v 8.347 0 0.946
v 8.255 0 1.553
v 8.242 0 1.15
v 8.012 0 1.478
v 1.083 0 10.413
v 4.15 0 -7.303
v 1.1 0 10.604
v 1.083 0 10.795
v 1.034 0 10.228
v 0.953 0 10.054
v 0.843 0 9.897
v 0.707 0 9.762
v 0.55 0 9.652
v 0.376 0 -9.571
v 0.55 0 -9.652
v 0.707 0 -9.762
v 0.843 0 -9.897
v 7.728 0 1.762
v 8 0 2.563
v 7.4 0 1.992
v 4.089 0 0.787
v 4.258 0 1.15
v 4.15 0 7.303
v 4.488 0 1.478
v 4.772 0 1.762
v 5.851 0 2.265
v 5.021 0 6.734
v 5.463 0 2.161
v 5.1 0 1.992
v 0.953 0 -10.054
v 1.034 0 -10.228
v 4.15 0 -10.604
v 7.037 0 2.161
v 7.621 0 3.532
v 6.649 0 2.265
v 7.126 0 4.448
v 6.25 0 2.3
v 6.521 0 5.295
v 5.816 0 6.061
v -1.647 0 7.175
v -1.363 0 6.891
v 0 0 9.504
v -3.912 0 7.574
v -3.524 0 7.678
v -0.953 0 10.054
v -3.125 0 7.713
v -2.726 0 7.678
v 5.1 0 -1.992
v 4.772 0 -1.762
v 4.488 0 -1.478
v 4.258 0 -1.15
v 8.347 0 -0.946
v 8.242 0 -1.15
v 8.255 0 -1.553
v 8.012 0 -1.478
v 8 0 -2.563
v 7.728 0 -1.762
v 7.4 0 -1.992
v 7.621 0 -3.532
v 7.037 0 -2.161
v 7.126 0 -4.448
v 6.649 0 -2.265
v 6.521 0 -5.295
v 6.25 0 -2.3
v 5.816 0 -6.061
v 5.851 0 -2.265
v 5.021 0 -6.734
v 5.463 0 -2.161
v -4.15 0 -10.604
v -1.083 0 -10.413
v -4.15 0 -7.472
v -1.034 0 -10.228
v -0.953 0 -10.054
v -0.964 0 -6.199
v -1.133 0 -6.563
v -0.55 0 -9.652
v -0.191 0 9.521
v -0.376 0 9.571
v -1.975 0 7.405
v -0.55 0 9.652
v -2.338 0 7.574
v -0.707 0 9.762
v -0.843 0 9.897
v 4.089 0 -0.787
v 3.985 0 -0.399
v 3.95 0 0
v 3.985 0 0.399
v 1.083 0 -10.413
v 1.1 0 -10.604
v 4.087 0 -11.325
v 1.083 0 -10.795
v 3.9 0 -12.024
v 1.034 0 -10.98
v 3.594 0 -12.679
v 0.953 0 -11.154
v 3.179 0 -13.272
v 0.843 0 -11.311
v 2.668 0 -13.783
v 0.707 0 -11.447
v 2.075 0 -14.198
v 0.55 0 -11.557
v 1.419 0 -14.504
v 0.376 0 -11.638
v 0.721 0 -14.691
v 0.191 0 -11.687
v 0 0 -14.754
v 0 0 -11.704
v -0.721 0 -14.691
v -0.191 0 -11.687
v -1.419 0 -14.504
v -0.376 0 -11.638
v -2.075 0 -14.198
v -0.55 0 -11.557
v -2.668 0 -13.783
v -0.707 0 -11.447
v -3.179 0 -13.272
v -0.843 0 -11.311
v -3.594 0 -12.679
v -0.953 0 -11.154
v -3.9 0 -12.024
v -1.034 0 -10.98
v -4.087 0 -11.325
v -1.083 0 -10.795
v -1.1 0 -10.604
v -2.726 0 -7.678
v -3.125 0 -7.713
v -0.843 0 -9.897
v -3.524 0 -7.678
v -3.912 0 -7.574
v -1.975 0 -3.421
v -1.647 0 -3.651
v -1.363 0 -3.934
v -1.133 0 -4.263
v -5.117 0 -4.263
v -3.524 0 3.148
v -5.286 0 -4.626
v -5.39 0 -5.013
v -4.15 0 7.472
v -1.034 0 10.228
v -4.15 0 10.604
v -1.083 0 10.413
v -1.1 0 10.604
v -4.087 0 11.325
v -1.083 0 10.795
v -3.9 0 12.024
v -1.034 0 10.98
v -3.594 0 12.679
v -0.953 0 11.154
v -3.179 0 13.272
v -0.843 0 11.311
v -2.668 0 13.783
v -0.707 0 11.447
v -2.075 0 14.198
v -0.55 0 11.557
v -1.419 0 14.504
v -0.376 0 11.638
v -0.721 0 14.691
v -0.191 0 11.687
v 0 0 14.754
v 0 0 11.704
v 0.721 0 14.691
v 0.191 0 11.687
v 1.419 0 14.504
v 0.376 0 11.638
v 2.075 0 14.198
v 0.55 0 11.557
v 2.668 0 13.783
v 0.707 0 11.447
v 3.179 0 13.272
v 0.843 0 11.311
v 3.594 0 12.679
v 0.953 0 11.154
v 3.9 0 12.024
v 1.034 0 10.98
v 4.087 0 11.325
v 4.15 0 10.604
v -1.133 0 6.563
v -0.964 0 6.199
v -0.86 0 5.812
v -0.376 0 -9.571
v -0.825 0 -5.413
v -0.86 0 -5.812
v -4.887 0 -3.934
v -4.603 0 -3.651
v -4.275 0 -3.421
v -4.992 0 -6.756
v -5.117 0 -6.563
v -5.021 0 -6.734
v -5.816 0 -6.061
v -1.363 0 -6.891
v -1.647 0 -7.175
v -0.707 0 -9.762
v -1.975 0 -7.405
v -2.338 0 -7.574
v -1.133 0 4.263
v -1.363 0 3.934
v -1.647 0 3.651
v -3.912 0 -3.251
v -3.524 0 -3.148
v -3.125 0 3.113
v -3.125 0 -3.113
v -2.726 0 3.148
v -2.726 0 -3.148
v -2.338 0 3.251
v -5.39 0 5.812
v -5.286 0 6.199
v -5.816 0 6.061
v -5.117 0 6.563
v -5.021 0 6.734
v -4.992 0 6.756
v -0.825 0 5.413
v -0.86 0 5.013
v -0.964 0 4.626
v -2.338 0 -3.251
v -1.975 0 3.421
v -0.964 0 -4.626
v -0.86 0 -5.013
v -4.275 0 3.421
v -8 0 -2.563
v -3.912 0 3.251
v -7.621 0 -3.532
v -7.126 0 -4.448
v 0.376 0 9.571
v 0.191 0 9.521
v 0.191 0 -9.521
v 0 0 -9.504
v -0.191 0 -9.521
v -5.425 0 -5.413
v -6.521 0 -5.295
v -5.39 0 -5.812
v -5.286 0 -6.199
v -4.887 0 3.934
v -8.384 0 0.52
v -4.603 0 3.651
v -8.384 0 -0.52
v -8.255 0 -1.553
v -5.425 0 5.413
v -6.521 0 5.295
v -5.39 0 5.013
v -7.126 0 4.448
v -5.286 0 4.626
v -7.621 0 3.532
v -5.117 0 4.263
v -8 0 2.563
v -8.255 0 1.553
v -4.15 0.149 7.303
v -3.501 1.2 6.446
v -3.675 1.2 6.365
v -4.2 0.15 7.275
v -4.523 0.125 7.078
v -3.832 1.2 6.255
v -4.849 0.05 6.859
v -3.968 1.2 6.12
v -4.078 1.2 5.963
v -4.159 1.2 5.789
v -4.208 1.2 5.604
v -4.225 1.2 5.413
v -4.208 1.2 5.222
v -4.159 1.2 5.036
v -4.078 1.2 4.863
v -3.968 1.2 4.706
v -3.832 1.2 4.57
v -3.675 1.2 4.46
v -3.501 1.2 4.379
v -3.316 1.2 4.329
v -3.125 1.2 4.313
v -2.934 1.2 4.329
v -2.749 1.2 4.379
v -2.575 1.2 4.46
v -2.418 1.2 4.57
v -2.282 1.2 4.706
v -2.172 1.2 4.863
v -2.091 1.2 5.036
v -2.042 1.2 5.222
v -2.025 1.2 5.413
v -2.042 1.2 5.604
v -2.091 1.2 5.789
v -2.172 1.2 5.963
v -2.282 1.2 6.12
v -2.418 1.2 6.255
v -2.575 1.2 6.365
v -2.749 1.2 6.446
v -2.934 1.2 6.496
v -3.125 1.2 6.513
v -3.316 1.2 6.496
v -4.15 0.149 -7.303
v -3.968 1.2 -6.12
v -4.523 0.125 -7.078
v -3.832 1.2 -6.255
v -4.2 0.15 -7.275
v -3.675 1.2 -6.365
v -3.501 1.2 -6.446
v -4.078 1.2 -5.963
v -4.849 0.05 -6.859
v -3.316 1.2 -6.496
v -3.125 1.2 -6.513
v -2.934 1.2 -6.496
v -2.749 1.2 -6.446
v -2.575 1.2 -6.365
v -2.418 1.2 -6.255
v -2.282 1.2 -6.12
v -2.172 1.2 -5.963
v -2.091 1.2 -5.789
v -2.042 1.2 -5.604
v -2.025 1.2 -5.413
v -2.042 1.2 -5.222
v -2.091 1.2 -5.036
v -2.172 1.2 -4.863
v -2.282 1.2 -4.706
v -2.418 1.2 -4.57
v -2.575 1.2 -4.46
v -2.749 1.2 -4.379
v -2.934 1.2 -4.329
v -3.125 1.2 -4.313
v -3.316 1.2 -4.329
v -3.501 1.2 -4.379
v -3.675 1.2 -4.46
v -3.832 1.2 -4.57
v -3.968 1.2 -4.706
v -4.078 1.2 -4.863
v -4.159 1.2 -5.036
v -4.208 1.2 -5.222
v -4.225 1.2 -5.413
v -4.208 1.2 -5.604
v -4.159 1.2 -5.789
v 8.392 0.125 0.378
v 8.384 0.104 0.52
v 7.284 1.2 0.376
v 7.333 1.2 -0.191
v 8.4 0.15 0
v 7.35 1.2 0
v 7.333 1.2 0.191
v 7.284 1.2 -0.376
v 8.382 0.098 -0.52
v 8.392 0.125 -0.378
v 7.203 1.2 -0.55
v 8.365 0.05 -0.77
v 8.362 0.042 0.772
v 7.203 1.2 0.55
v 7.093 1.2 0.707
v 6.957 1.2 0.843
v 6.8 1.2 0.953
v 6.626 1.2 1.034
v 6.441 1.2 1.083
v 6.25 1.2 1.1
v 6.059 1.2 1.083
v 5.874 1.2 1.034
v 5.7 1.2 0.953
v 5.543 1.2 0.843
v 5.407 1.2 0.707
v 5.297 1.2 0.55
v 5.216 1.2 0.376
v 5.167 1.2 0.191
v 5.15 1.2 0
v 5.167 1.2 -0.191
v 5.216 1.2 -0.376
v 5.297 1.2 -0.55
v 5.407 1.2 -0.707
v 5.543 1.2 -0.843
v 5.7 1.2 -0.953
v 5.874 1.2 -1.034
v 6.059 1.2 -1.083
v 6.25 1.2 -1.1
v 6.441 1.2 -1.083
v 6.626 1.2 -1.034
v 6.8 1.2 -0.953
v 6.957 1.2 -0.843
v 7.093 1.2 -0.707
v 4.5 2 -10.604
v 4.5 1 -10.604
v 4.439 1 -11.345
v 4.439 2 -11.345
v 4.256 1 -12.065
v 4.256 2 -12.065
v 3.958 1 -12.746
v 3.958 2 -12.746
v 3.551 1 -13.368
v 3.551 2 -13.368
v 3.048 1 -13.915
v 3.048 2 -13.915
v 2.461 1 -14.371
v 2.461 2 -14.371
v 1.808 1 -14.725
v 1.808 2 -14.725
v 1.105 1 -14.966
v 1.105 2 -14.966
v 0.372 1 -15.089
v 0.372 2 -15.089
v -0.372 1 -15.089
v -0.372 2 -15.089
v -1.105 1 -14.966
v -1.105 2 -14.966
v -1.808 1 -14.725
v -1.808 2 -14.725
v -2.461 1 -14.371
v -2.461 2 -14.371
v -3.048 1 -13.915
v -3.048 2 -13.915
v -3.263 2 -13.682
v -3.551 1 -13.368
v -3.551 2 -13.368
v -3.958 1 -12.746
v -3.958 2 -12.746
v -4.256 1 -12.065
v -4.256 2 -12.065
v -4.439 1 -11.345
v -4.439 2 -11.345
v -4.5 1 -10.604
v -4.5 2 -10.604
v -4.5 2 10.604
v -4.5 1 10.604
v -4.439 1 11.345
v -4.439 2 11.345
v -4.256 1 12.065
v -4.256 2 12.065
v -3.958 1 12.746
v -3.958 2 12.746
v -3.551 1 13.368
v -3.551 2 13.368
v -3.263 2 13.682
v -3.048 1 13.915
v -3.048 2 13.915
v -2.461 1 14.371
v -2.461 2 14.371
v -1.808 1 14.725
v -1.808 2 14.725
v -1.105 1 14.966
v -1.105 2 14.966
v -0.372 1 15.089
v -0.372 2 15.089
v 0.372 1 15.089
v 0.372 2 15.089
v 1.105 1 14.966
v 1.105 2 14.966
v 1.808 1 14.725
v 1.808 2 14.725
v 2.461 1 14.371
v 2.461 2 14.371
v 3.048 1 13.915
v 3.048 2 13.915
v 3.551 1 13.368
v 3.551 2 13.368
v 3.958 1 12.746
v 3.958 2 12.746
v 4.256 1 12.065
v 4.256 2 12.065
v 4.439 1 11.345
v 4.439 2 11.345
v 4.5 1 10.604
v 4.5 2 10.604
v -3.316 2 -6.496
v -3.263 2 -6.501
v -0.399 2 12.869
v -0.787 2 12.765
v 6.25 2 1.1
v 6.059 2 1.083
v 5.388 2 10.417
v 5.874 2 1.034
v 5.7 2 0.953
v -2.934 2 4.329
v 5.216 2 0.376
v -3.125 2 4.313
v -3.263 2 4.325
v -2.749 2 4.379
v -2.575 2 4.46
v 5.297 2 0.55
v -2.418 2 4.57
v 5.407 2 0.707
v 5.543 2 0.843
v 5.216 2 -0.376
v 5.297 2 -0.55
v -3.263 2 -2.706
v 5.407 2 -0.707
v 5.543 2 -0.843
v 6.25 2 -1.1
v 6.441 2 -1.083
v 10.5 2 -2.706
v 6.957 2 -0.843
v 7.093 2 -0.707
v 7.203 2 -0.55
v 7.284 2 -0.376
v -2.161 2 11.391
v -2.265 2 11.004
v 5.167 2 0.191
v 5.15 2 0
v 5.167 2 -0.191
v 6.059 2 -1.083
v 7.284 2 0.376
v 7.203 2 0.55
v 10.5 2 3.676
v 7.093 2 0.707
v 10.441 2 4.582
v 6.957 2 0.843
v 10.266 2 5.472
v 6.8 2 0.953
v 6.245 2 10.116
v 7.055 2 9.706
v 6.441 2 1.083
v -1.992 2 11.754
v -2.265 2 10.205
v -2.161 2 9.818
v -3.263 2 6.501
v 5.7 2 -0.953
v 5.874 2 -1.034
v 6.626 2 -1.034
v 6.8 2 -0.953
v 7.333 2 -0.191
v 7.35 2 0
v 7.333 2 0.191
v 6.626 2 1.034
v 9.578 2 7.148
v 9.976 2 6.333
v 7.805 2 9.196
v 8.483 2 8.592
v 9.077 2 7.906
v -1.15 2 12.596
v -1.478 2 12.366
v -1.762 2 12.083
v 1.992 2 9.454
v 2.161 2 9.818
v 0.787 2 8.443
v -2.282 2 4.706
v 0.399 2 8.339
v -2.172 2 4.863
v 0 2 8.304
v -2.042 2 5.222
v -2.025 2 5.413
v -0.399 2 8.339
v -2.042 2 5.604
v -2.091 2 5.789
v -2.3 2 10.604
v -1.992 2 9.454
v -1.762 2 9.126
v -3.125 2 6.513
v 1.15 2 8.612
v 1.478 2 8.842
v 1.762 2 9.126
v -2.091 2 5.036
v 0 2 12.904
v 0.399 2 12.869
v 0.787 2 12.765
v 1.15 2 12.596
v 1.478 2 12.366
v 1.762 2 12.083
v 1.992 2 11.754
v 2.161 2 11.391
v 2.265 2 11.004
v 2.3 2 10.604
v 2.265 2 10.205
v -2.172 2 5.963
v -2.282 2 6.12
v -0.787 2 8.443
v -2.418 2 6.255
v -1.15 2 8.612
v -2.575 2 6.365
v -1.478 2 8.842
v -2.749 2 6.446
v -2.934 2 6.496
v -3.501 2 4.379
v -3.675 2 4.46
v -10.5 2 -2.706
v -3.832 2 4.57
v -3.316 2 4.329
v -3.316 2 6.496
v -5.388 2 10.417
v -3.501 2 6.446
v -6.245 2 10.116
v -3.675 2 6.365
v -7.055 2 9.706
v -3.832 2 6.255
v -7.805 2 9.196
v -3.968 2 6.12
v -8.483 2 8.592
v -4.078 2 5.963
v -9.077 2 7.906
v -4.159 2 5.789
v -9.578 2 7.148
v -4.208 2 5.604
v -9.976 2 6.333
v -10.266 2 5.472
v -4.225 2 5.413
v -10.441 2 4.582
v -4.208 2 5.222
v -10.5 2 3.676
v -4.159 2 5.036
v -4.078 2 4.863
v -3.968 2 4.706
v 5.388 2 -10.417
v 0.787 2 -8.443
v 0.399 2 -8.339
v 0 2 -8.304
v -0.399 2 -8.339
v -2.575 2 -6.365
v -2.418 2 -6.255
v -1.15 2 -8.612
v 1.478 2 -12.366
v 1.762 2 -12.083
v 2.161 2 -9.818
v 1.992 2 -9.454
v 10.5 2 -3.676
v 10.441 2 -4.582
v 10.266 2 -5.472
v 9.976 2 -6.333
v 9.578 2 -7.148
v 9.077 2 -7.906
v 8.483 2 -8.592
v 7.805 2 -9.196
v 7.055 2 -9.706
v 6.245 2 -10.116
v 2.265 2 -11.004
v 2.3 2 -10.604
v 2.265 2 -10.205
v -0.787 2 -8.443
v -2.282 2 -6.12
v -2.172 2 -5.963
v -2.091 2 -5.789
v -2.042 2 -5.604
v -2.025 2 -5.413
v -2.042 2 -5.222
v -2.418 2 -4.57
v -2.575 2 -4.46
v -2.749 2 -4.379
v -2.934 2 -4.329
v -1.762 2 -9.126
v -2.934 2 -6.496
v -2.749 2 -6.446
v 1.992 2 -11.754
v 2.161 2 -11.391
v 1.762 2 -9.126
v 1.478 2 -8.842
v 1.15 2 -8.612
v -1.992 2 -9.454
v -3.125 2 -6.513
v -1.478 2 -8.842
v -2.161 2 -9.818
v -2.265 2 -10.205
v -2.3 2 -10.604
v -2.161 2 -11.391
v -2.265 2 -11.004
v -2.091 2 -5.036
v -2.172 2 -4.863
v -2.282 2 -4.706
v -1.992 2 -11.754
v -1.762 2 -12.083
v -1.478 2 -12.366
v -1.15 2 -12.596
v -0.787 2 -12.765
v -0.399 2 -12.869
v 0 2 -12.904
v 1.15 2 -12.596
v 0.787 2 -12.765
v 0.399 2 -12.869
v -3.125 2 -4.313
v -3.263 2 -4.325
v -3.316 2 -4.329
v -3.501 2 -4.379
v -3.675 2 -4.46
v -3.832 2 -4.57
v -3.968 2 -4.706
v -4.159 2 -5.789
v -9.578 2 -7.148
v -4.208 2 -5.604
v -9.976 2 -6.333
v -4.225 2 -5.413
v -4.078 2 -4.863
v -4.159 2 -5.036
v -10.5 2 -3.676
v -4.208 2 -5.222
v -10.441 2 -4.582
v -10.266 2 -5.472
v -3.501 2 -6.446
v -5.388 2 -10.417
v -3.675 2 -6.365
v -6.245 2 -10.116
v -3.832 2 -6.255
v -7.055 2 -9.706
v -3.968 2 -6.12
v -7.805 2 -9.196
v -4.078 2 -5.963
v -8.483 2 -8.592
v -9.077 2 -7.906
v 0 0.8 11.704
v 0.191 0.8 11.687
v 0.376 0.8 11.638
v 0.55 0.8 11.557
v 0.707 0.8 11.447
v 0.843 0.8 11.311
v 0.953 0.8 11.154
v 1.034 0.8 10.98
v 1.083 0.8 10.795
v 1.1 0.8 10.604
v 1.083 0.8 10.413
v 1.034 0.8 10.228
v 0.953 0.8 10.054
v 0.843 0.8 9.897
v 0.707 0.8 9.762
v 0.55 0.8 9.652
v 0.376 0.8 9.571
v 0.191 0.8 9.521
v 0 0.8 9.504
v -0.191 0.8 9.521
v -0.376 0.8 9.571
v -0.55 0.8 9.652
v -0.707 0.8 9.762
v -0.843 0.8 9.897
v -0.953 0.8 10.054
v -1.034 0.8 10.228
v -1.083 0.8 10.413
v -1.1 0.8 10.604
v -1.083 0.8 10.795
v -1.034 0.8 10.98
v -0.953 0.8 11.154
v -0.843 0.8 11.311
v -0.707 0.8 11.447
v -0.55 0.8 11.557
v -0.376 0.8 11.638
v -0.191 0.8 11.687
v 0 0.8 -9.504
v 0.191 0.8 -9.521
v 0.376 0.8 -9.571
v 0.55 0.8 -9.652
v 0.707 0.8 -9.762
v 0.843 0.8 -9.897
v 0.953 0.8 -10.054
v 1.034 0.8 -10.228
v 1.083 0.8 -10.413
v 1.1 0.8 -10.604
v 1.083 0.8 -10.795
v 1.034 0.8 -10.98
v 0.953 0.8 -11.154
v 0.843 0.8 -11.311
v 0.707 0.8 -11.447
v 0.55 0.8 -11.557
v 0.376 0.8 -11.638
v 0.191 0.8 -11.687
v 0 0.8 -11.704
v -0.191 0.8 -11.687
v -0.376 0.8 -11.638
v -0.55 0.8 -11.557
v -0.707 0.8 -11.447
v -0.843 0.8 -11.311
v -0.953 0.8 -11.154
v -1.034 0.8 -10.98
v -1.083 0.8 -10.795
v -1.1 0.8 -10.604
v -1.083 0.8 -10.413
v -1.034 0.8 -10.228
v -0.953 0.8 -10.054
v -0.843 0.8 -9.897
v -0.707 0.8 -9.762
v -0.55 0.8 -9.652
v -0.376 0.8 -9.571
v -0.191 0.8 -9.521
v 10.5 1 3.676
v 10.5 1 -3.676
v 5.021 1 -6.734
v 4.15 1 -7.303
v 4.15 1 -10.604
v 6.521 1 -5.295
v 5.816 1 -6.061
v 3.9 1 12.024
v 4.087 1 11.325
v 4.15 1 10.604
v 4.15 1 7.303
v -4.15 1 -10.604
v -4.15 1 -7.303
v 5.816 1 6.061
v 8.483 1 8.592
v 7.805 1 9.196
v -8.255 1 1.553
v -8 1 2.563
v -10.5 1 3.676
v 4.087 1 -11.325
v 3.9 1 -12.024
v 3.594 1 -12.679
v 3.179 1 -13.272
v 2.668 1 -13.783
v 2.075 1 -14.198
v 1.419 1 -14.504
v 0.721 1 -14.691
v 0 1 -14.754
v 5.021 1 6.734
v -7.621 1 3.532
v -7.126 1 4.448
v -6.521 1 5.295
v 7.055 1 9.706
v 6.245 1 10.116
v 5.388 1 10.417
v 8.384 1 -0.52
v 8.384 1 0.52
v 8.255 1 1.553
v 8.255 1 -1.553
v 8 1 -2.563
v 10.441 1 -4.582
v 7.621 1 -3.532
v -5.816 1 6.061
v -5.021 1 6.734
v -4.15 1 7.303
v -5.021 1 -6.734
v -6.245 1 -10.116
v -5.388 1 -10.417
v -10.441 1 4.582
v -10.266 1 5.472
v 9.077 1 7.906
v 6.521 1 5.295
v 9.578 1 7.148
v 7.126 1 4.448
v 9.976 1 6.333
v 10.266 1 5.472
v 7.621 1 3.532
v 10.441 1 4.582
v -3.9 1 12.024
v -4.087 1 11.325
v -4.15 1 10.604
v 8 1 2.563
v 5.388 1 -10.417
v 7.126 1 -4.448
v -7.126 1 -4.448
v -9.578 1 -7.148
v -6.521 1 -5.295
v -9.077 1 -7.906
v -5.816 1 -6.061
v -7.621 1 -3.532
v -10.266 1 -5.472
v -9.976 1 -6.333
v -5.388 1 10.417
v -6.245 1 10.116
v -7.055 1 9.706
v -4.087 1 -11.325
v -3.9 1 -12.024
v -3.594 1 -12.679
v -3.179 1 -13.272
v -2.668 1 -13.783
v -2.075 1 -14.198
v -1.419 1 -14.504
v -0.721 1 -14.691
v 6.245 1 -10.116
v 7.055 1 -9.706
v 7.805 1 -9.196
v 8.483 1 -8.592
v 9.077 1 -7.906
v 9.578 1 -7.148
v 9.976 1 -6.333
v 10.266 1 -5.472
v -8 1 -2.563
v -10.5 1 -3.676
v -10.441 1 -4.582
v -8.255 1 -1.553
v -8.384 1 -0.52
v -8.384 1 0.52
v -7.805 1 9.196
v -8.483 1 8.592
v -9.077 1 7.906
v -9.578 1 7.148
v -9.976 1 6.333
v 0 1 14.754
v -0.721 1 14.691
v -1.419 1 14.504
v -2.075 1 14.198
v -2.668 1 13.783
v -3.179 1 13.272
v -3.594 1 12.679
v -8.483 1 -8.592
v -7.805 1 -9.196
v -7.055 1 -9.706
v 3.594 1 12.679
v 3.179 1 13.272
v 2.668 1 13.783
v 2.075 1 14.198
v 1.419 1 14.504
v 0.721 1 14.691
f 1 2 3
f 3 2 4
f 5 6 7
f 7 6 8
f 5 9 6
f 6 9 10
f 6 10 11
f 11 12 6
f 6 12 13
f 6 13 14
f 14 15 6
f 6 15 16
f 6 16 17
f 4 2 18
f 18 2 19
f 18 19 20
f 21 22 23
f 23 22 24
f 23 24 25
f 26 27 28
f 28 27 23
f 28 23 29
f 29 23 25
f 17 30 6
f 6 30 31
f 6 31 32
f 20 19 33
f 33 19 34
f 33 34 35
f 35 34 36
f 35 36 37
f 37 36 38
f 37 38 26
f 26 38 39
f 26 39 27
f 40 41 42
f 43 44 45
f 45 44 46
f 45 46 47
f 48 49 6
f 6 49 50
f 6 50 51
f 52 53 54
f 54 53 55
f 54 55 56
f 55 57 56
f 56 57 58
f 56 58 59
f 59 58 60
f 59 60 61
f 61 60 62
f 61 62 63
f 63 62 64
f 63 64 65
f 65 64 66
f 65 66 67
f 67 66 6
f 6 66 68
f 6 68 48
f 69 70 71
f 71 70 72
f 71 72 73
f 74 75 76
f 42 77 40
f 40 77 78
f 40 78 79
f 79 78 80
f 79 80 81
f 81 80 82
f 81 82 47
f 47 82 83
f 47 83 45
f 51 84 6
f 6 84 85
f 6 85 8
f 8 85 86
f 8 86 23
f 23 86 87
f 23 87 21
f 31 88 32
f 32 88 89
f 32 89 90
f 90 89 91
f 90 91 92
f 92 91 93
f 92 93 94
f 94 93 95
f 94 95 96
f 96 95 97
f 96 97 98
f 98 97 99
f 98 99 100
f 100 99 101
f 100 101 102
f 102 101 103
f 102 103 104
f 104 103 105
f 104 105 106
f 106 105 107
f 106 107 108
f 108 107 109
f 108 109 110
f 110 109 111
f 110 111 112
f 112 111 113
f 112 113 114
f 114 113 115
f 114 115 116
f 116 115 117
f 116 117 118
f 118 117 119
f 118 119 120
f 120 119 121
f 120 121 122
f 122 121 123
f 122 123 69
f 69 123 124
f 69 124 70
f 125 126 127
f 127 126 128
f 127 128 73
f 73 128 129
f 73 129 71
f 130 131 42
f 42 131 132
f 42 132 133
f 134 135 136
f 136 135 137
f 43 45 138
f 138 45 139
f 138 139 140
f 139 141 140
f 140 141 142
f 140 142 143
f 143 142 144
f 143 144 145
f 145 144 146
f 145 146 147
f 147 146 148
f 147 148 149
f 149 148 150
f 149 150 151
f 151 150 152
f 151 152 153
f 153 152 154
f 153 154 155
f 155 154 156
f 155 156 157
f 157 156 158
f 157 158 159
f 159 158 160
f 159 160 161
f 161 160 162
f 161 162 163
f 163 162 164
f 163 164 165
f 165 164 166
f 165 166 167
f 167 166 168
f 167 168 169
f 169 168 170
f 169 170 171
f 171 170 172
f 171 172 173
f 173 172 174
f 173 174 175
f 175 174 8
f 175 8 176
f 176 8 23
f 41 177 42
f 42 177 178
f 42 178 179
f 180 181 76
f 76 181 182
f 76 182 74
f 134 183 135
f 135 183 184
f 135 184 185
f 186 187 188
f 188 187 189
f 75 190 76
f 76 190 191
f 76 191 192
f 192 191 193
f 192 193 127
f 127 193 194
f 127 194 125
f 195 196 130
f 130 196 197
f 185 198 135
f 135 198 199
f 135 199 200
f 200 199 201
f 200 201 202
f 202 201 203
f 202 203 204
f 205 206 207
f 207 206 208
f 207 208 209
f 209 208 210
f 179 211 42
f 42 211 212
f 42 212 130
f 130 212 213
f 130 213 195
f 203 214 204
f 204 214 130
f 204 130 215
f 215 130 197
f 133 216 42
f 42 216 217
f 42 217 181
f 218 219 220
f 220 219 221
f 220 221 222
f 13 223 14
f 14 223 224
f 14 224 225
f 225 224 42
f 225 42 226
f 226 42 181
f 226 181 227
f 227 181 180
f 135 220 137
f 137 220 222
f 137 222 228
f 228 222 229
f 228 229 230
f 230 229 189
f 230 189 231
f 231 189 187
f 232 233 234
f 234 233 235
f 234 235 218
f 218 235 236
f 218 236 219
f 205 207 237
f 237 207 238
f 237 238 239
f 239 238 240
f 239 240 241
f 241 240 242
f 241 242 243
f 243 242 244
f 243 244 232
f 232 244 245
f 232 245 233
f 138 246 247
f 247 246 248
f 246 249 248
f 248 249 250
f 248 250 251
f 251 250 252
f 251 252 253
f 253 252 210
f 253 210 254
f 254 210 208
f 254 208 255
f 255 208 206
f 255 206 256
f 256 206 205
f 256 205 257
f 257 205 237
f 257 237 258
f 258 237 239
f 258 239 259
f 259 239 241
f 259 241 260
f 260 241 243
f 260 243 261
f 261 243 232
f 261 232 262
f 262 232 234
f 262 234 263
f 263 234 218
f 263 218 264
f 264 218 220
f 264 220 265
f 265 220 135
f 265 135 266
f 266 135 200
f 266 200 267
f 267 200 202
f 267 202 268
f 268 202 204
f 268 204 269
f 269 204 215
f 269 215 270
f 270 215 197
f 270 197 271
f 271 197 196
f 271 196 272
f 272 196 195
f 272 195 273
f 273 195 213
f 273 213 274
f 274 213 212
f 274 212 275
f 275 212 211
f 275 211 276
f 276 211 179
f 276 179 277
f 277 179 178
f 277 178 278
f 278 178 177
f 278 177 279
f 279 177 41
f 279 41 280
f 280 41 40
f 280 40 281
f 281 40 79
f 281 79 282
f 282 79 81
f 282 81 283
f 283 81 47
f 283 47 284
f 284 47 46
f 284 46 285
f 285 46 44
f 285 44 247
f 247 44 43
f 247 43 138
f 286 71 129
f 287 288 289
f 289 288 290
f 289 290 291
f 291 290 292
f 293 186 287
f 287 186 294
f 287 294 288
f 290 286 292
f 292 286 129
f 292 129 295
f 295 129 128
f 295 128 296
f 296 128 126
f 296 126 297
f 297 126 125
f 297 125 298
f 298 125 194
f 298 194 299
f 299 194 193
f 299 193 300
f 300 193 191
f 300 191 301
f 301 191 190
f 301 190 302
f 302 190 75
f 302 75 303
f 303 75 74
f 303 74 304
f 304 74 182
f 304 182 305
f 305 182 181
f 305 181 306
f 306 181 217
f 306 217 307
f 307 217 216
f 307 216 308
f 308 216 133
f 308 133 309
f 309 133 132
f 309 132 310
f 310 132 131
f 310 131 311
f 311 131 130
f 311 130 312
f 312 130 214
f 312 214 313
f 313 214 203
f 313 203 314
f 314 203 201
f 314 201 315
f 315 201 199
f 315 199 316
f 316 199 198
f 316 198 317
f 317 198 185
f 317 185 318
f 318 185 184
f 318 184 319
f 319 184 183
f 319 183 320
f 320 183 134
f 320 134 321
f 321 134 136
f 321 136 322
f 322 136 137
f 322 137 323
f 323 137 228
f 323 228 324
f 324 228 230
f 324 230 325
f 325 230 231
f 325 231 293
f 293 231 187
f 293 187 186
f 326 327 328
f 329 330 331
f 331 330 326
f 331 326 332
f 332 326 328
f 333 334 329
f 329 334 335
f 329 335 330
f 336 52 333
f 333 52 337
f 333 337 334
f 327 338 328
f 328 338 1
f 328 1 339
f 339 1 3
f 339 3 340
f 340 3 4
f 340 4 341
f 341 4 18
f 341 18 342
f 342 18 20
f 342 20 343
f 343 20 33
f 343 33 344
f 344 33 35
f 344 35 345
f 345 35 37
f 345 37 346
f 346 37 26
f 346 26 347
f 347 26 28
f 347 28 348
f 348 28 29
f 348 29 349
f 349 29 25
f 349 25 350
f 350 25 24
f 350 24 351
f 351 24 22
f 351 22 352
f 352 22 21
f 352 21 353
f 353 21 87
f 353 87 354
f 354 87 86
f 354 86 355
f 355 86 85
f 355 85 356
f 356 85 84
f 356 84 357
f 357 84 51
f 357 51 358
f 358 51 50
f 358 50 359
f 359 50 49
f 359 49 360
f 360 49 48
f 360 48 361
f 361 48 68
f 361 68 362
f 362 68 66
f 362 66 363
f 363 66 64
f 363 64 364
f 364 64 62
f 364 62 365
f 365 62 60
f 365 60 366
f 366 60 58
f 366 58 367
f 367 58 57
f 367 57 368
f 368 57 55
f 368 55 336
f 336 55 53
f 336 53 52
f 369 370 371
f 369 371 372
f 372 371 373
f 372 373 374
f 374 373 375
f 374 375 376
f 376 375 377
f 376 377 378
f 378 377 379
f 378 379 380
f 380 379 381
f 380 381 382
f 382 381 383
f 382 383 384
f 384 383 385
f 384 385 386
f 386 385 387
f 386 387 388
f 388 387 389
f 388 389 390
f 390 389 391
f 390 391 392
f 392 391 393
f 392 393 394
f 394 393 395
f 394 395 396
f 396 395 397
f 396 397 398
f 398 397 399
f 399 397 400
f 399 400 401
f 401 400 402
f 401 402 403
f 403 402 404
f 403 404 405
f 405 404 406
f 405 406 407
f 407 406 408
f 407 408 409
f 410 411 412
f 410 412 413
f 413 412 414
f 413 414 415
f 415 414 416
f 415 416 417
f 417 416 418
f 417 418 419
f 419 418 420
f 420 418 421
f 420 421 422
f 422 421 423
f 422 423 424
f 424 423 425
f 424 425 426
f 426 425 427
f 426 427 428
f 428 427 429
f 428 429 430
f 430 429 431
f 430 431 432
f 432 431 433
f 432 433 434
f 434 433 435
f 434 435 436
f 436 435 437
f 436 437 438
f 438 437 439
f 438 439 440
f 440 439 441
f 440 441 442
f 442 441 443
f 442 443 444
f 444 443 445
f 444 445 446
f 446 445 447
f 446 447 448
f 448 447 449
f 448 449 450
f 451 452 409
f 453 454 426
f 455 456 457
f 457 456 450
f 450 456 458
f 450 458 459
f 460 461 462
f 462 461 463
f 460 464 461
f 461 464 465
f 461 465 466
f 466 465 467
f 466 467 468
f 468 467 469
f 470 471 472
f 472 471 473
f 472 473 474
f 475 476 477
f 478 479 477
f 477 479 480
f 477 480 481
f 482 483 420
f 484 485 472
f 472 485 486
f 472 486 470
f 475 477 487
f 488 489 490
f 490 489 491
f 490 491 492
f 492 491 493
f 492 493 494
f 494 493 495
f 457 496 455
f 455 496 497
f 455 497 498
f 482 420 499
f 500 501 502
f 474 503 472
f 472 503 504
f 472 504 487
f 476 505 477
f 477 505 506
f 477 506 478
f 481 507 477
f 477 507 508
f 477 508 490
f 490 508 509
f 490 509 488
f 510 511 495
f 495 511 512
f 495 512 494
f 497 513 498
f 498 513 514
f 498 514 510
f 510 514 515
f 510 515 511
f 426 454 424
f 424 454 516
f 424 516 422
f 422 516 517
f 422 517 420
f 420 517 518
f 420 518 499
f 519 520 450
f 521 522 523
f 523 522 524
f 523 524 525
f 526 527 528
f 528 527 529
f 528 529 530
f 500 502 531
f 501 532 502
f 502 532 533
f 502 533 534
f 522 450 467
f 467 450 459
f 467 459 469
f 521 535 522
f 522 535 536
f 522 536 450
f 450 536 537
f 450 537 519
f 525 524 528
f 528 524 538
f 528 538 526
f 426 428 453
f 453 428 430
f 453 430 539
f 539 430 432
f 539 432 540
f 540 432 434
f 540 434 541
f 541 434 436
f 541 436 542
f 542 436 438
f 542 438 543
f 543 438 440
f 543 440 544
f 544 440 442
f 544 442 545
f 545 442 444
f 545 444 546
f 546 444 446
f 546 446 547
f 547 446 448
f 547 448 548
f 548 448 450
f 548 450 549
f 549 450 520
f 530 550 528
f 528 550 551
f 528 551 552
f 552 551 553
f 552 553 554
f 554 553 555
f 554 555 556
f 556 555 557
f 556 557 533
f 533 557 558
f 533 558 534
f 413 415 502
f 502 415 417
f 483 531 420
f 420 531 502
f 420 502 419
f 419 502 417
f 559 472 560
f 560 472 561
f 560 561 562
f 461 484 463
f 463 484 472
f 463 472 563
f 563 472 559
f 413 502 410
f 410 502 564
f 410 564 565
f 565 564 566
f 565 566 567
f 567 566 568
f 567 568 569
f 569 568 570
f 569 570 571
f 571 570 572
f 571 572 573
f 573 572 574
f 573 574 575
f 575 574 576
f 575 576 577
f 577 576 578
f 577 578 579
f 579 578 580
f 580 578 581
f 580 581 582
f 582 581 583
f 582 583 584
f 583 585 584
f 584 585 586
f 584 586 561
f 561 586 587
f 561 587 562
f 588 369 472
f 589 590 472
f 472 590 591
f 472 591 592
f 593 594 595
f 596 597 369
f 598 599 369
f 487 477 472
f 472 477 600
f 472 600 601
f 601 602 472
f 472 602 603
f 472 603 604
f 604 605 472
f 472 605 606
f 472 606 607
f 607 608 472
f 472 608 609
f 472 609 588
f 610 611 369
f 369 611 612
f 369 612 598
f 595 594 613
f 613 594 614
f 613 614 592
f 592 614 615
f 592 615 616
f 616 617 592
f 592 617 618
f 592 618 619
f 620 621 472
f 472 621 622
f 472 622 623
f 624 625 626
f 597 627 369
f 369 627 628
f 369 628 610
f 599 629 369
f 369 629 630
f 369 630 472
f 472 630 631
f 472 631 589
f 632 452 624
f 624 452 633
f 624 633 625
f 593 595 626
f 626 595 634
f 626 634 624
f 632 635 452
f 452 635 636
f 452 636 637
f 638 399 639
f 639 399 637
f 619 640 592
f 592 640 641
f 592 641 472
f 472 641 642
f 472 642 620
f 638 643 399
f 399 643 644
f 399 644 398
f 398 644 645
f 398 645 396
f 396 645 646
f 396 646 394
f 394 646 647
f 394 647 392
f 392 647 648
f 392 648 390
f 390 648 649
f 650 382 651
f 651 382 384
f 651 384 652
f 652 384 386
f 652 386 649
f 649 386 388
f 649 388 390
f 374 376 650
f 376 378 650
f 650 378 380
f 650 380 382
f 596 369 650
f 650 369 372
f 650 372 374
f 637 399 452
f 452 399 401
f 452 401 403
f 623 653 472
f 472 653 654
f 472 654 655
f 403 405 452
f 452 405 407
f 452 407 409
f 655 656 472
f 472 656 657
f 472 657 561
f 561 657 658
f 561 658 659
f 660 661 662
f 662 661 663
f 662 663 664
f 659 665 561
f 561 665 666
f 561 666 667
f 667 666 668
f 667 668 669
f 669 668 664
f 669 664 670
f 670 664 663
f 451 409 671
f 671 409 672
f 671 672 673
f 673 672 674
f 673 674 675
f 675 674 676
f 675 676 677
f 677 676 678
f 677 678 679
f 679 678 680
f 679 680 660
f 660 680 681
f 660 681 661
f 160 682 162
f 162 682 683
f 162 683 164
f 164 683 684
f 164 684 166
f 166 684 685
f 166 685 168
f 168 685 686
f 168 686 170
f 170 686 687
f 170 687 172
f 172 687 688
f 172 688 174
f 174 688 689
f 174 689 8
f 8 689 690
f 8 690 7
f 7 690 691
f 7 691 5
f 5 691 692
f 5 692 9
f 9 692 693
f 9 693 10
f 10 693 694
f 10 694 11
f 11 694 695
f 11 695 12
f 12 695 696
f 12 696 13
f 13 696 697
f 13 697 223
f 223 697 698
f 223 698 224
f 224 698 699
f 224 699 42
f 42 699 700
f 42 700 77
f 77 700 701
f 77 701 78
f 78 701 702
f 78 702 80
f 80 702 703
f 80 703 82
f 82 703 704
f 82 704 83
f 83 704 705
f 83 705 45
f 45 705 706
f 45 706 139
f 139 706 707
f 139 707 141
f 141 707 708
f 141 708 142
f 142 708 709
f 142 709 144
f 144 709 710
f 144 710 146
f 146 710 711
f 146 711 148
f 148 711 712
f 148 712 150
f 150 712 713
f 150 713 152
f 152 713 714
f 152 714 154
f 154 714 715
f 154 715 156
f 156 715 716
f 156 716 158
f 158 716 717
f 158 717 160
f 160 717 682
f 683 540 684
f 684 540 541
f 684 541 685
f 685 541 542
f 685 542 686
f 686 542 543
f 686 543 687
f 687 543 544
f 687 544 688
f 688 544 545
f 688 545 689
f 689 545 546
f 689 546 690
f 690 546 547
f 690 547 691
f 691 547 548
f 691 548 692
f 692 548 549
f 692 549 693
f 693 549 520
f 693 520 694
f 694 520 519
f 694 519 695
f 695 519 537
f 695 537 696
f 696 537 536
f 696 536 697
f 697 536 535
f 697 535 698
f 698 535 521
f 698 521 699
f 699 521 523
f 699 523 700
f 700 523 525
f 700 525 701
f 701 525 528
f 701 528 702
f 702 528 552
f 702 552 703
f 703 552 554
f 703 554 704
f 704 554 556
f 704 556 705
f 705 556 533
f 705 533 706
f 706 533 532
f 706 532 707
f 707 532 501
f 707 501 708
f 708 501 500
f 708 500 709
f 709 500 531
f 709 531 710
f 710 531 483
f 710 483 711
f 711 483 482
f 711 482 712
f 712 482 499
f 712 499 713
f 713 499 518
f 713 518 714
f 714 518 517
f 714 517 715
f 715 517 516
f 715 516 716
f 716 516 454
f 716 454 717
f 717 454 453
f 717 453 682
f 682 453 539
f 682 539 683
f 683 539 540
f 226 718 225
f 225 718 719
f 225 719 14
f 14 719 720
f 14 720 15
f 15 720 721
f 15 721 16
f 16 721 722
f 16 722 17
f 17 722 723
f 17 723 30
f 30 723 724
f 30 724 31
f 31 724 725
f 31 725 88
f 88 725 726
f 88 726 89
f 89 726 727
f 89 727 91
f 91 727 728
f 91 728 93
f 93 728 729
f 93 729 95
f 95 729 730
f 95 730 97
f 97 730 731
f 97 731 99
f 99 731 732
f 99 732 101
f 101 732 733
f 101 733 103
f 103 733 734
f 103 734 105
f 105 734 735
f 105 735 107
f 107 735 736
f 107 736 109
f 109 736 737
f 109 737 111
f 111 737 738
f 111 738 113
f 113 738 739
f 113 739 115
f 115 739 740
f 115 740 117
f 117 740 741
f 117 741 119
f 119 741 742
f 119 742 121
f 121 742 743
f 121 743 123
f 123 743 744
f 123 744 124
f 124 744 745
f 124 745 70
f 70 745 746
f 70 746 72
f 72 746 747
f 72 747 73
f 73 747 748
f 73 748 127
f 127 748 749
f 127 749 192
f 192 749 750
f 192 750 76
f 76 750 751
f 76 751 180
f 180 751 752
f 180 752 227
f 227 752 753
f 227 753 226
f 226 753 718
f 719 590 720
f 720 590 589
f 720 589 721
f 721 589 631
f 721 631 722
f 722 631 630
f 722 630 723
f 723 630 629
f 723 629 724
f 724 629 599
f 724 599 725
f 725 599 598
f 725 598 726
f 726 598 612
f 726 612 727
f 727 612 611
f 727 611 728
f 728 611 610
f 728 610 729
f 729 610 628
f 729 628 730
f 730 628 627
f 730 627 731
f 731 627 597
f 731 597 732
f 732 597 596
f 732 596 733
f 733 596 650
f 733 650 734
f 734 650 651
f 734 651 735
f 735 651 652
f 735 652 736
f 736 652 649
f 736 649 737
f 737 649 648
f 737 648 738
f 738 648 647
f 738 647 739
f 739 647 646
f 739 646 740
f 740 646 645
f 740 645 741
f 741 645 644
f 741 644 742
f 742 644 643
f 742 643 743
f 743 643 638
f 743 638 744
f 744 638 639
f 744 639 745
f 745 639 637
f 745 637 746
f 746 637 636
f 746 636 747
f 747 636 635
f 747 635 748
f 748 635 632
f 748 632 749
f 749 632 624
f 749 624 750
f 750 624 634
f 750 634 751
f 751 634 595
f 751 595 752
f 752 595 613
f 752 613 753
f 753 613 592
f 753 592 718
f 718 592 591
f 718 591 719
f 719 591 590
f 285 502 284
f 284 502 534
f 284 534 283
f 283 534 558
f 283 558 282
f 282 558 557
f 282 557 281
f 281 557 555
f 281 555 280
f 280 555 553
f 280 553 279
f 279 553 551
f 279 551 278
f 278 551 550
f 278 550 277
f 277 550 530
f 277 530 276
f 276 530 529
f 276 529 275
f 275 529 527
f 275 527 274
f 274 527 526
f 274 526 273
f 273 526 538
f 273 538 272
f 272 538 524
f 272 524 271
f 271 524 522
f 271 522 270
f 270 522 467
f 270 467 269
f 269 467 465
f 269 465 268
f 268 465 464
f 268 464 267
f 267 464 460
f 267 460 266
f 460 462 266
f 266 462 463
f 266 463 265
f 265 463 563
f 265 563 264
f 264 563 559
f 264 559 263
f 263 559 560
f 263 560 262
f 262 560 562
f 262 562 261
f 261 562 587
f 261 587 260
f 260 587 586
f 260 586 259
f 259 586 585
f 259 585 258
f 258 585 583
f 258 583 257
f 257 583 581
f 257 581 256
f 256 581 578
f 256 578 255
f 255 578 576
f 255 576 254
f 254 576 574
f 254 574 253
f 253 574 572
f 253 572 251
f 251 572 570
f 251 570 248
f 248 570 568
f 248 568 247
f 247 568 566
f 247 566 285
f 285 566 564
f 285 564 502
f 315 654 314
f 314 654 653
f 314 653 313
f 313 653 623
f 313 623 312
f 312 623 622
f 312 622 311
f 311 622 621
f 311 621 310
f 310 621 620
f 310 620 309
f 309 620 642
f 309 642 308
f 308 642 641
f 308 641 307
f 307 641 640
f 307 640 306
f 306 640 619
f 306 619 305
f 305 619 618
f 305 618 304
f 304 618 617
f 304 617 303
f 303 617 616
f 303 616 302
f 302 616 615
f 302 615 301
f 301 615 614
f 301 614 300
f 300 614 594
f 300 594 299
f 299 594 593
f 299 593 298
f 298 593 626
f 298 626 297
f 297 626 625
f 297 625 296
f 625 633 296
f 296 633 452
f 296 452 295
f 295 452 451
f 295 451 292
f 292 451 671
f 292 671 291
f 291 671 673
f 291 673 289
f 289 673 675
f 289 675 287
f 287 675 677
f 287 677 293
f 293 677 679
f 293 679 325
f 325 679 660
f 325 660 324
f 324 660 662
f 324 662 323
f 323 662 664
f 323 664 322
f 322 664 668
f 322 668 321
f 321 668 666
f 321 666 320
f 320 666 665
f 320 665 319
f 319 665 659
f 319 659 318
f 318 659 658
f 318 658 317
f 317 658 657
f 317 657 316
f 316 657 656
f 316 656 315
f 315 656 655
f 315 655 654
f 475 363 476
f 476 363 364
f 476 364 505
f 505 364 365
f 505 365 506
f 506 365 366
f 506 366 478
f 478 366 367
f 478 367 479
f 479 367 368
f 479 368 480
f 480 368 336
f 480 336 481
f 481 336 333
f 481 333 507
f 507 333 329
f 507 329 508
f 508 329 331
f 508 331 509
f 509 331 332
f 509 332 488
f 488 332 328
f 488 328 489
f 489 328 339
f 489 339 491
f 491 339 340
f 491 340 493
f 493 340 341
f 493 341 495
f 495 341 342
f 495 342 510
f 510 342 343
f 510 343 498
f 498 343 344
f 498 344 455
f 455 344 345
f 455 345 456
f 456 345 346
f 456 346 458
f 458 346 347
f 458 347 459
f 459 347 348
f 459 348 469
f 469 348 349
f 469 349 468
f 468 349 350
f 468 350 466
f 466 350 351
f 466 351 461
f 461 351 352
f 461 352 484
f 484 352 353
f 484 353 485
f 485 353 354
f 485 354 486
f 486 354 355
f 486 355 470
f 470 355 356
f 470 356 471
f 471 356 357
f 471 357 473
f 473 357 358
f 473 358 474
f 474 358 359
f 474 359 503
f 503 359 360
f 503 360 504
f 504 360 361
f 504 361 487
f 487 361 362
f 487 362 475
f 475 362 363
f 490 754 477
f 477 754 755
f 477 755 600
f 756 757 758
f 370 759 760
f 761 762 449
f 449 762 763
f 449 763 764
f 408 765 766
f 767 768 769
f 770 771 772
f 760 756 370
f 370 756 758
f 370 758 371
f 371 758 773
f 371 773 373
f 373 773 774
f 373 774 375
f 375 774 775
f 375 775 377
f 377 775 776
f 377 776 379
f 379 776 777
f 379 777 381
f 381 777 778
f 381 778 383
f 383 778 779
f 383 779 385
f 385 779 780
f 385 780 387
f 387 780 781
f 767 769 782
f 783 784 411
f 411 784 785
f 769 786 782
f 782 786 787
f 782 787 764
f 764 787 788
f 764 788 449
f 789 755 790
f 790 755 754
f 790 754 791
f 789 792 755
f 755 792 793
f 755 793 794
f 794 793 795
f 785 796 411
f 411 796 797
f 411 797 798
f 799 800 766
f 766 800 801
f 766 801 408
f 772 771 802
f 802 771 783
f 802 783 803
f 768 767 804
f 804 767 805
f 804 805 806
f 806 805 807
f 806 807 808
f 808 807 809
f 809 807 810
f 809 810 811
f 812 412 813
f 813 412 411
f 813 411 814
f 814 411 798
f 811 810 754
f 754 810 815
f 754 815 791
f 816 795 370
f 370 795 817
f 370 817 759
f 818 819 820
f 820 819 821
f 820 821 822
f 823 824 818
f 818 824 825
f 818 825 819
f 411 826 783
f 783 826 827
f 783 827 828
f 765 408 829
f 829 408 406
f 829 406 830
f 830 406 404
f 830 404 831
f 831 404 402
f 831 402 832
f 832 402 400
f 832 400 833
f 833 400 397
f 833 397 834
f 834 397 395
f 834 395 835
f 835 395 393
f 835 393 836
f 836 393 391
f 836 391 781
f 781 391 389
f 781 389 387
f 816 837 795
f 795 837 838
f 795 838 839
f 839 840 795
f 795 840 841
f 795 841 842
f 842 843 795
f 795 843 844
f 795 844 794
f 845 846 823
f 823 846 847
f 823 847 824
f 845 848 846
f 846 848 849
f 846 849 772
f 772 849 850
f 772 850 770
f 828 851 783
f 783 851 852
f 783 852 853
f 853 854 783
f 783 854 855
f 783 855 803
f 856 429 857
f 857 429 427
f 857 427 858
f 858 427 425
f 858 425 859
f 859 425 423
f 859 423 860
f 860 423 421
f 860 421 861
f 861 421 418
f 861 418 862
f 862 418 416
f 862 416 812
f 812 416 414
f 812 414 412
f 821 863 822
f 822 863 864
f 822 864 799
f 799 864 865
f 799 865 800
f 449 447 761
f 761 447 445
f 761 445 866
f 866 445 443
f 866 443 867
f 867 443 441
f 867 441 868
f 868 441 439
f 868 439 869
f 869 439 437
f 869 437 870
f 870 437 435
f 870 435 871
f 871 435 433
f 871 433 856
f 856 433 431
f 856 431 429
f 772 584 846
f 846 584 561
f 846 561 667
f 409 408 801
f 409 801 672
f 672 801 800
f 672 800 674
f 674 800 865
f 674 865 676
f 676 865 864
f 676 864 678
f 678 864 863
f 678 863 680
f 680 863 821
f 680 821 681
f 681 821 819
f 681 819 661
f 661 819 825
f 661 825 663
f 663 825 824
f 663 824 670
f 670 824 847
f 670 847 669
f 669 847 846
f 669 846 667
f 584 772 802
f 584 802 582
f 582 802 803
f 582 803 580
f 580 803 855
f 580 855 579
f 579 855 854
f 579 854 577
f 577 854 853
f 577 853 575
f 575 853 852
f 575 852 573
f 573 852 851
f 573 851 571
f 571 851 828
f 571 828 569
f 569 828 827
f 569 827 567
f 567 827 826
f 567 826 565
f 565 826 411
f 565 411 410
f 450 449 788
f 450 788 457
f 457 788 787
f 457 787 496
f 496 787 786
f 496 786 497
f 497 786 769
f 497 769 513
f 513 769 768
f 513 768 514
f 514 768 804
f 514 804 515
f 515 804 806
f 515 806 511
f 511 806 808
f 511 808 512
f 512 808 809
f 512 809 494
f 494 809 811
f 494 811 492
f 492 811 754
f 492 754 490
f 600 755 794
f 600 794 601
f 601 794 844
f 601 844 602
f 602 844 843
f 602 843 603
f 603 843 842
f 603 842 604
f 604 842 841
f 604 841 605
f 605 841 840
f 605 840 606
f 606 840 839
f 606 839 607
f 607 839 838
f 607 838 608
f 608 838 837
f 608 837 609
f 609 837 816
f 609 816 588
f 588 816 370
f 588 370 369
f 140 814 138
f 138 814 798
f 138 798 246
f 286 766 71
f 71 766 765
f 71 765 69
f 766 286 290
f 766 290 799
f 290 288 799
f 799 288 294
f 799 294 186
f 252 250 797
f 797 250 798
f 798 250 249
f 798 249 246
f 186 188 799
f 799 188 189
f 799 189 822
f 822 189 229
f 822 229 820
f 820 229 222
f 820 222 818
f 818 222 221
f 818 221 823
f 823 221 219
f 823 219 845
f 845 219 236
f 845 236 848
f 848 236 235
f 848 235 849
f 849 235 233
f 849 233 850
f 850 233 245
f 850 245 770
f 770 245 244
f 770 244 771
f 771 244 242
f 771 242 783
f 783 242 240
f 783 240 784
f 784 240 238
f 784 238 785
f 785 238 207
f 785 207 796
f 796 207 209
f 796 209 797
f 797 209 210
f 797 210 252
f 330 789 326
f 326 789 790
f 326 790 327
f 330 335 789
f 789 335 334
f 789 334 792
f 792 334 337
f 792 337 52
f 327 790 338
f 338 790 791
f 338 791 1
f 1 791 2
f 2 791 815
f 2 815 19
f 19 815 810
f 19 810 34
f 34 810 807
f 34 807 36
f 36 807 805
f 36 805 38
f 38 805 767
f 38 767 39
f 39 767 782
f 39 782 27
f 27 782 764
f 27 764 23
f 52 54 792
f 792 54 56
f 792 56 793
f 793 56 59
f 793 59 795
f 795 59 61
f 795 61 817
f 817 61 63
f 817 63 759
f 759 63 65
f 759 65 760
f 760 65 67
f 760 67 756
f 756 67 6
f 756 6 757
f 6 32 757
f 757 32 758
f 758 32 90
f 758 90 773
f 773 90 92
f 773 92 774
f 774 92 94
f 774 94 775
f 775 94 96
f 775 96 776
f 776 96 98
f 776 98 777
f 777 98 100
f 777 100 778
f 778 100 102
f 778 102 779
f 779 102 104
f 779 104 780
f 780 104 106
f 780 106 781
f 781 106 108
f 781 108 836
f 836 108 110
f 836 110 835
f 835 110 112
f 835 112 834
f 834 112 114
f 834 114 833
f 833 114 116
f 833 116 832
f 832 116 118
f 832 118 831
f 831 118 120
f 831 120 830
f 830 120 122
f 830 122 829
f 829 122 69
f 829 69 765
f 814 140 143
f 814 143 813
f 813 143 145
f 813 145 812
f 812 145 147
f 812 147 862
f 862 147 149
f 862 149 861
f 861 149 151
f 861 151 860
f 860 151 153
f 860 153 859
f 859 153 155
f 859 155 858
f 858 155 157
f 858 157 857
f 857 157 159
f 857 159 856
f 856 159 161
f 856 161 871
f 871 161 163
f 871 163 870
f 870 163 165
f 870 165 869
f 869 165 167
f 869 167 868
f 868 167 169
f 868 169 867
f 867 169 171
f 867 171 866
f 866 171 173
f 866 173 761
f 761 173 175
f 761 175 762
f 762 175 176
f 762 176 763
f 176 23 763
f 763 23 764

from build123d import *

# Parameters (mm, degrees)
BOSS_EXTRUDE1_DEPTH                          = 2
CSK_FOR_M2_COUNTERSUNK_FLAT_HEAD_SCR_4_COUNT = 2
CSK_FOR_M2_COUNTERSUNK_FLAT_HEAD_SCR_4_PITCH = 10.825317547
CSK_FOR_M2_COUNTERSUNK_FLAT_HEAD_SCR_5_COUNT = 2
CSK_FOR_M2_COUNTERSUNK_FLAT_HEAD_SCR_5_PITCH = 10.825317547
BOSS_EXTRUDE2_START                          = -1
BOSS_EXTRUDE2_DEPTH                          = 1
FILLET1_R                                    = 7
CUT_EXTRUDE1_DEPTH                           = 1


# Read off the part's stored shape, not the designer's step: CSK for M2 Countersunk Flat Head Screw1
with BuildPart() as part:
    # Sketch1 → Boss-Extrude1 (new body)
    with BuildSketch(Plane(origin=(0, 0, 0), x_dir=(1, 0, 0), z_dir=(0, 1, 0))):
        with BuildLine():
            Line((4.5, 10.60416551), (4.5, 7.50416551))
            ThreePointArc((4.5, 7.50416551), (8.75, 0), (4.5, -7.50416551))
            Line((4.5, -7.50416551), (4.5, -10.60416551))
            ThreePointArc((4.5, -10.60416551), (0, -15.10416551), (-4.5, -10.60416551))
            Line((-4.5, -10.60416551), (-4.5, -7.50416551))
            ThreePointArc((-4.5, -7.50416551), (-8.75, 0), (-4.5, 7.50416551))
            Line((-4.5, 7.50416551), (-4.5, 10.60416551))
            ThreePointArc((-4.5, 10.60416551), (0, 15.10416551), (4.5, 10.60416551))
        make_face()
    extrude(amount=BOSS_EXTRUDE1_DEPTH)

    # CSK for M2 Countersunk Flat Head Scr 2 → CSK for M2 Countersunk Flat Head Screw1 (revolve, cut)
    with BuildSketch(Plane.XY.offset(10.60416551)):
        Polygon((0, 0), (1.1, 0), (1.1, 0.8), (2.3, 2), (0, 2), align=None)
    revolve(axis=Axis((0, 0, 10.60416551), (0, 1, 0)), mode=Mode.SUBTRACT)

    # CSK for M2 Countersunk Flat Head Scr 3 o → CSK for M2 Countersunk Flat Head Scr 3 (revolve, cut)
    with BuildSketch(Plane.XY.offset(-10.60416551)):
        Polygon((0, 0), (1.1, 0), (1.1, 0.8), (2.3, 2), (0, 2), align=None)
    revolve(axis=Axis((0, 0, -10.60416551), (0, 1, 0)), mode=Mode.SUBTRACT)

    # Sketch6 → CSK for M2 Countersunk Flat Head Screw2 (revolve, cut)
    with BuildSketch(Plane(origin=(6.25, 0, 0), x_dir=(0, 0, -1), z_dir=(1, 0, 0))):
        Polygon((0, 0), (0, 2), (1.1, 2), (1.1, 1.2), (2.3, 0), align=None)
    csk_for_m2_countersunk_flat_head_screw2 = revolve(axis=Axis((6.25, -6.35, 0), (0, 1, 0)), mode=Mode.SUBTRACT)

    # CSK for M2 Countersunk Flat Head Scr 4: CSK for M2 Countersunk Flat Head Screw2 ×2
    with Locations(*[Vector(-0.8660254037844379, 0, -0.5000000000000012) * (i * CSK_FOR_M2_COUNTERSUNK_FLAT_HEAD_SCR_4_PITCH) for i in range(1, CSK_FOR_M2_COUNTERSUNK_FLAT_HEAD_SCR_4_COUNT)]):
        add(csk_for_m2_countersunk_flat_head_screw2, mode=Mode.SUBTRACT)

    # CSK for M2 Countersunk Flat Head Scr 5: CSK for M2 Countersunk Flat Head Screw2 ×2
    with Locations(*[Vector(-0.8660254037844383, 0, 0.5000000000000008) * (i * CSK_FOR_M2_COUNTERSUNK_FLAT_HEAD_SCR_5_PITCH) for i in range(1, CSK_FOR_M2_COUNTERSUNK_FLAT_HEAD_SCR_5_COUNT)]):
        add(csk_for_m2_countersunk_flat_head_screw2, mode=Mode.SUBTRACT)

    # Sketch7 → Boss-Extrude2 (add)
    with BuildSketch(Plane(origin=(0, 2, 0), x_dir=(1, 0, 0), z_dir=(0, 1, 0)).offset(BOSS_EXTRUDE2_START)):
        with BuildLine():
            Line((4.5, 10.60416551), (10.5, 10.60416551))
            Line((10.5, 10.60416551), (10.5, -10.60416551))
            Line((10.5, -10.60416551), (4.5, -10.60416551))
            Line((4.5, -10.60416551), (4.5, -7.50416551))
            ThreePointArc((4.5, -7.50416551), (8.75, 0), (4.5, 7.50416551))
            Line((4.5, 7.50416551), (4.5, 10.60416551))
        make_face()
        with BuildLine():
            Line((-4.5, -7.50416551), (-4.5, -10.60416551))
            Line((-4.5, -10.60416551), (-10.5, -10.60416551))
            Line((-10.5, -10.60416551), (-10.5, 10.60416551))
            Line((-10.5, 10.60416551), (-4.5, 10.60416551))
            Line((-4.5, 10.60416551), (-4.5, 7.50416551))
            ThreePointArc((-4.5, 7.50416551), (-8.75, 0), (-4.5, -7.50416551))
        make_face()
    extrude(amount=BOSS_EXTRUDE2_DEPTH)

    # Fillet1
    # the kernel refuses this fillet: 7 mm, written as the material it takes off along each edge
    with BuildSketch(Plane(origin=(-10.5, -16.320508076, -10.60416551), x_dir=(1, 0, 0), z_dir=(0, 1, 0))) as fillet1_piece_1:
        with BuildLine():
            CenterArc((7, -6.92820323), FILLET1_R, 98.213210702, 81.786789298)
            Line((0, -6.92820323), (-0.14, -6.92820323))
            Line((-0.14, -6.92820323), (-0.14, 0))
            Line((-0.14, 0), (0, 0.14))
            ThreePointArc((0, 0.14), (3, 0.14), (5.98, 0.138564065))
            Line((5.98, 0.138564065), (6, 0))
        make_face()
    extrude(amount=35.641016151, mode=Mode.SUBTRACT)
    with BuildSketch(Plane(origin=(-10.5, -16.320508076, 10.60416551), x_dir=(1, 0, 0), z_dir=(0, 1, 0)), Plane(origin=(10.5, -16.320508076, -10.60416551), x_dir=(-1, 0, 0), z_dir=(0, 1, 0))) as fillet1_piece_2:
        with BuildLine():
            CenterArc((7, 6.92820323), FILLET1_R, 180, 81.786789298)
            Line((0, 6.92820323), (-0.14, 6.92820323))
            Line((-0.14, 6.92820323), (-0.14, 0))
            Line((-0.14, 0), (0, -0.14))
            ThreePointArc((0, -0.14), (3, -0.14), (5.98, -0.138564065))
            Line((5.98, -0.138564065), (6, 0))
        make_face()
    extrude(amount=35.641016151, mode=Mode.SUBTRACT)
    with BuildSketch(Plane(origin=(10.5, -16.320508076, 10.60416551), x_dir=(0, 0, -1), z_dir=(0, 1, 0))) as fillet1_piece_3:
        with BuildLine():
            CenterArc((6.92820323, 7), FILLET1_R, 188.213210702, 81.786789298)
            Line((0, 6), (-0.138564065, 5.98))
            ThreePointArc((-0.138564065, 5.98), (-0.14, 3), (-0.14, 0))
            Line((-0.14, 0), (0, -0.14))
            Line((0, -0.14), (6.92820323, -0.14))
            Line((6.92820323, -0.14), (6.92820323, 0))
        make_face()
    extrude(amount=35.641016151, mode=Mode.SUBTRACT)

    # Sketch8 → Cut-Extrude1 (cut)
    with BuildSketch(Plane.XZ):
        with BuildLine():
            Line((-4.5, -10.60416551), (-4.5, -7.50416551))
            ThreePointArc((-4.5, -7.50416551), (-8.75, 0), (-4.5, 7.50416551))
            Line((-4.5, 7.50416551), (-4.5, 10.60416551))
            ThreePointArc((-4.5, 10.60416551), (0, 15.10416551), (4.5, 10.60416551))
            Line((4.5, 10.60416551), (4.5, 7.50416551))
            ThreePointArc((4.5, 7.50416551), (8.75, 0), (4.5, -7.50416551))
            Line((4.5, -7.50416551), (4.5, -10.60416551))
            ThreePointArc((4.5, -10.60416551), (0, -15.10416551), (-4.5, -10.60416551))
        make_face()
        with BuildLine():
            Line((4.15, 7.3032527), (4.15, 10.60416551))
            ThreePointArc((4.15, 10.60416551), (0, 14.75416551), (-4.15, 10.60416551))
            Line((-4.15, 10.60416551), (-4.15, 7.3032527))
            ThreePointArc((-4.15, 7.3032527), (-8.4, 0), (-4.15, -7.3032527))
            Line((-4.15, -7.3032527), (-4.15, -10.60416551))
            ThreePointArc((-4.15, -10.60416551), (0, -14.75416551), (4.15, -10.60416551))
            Line((4.15, -10.60416551), (4.15, -7.3032527))
            ThreePointArc((4.15, -7.3032527), (8.4, 0), (4.15, 7.3032527))
        make_face(mode=Mode.SUBTRACT)
    extrude(amount=-CUT_EXTRUDE1_DEPTH, mode=Mode.SUBTRACT)


solid = part.part
